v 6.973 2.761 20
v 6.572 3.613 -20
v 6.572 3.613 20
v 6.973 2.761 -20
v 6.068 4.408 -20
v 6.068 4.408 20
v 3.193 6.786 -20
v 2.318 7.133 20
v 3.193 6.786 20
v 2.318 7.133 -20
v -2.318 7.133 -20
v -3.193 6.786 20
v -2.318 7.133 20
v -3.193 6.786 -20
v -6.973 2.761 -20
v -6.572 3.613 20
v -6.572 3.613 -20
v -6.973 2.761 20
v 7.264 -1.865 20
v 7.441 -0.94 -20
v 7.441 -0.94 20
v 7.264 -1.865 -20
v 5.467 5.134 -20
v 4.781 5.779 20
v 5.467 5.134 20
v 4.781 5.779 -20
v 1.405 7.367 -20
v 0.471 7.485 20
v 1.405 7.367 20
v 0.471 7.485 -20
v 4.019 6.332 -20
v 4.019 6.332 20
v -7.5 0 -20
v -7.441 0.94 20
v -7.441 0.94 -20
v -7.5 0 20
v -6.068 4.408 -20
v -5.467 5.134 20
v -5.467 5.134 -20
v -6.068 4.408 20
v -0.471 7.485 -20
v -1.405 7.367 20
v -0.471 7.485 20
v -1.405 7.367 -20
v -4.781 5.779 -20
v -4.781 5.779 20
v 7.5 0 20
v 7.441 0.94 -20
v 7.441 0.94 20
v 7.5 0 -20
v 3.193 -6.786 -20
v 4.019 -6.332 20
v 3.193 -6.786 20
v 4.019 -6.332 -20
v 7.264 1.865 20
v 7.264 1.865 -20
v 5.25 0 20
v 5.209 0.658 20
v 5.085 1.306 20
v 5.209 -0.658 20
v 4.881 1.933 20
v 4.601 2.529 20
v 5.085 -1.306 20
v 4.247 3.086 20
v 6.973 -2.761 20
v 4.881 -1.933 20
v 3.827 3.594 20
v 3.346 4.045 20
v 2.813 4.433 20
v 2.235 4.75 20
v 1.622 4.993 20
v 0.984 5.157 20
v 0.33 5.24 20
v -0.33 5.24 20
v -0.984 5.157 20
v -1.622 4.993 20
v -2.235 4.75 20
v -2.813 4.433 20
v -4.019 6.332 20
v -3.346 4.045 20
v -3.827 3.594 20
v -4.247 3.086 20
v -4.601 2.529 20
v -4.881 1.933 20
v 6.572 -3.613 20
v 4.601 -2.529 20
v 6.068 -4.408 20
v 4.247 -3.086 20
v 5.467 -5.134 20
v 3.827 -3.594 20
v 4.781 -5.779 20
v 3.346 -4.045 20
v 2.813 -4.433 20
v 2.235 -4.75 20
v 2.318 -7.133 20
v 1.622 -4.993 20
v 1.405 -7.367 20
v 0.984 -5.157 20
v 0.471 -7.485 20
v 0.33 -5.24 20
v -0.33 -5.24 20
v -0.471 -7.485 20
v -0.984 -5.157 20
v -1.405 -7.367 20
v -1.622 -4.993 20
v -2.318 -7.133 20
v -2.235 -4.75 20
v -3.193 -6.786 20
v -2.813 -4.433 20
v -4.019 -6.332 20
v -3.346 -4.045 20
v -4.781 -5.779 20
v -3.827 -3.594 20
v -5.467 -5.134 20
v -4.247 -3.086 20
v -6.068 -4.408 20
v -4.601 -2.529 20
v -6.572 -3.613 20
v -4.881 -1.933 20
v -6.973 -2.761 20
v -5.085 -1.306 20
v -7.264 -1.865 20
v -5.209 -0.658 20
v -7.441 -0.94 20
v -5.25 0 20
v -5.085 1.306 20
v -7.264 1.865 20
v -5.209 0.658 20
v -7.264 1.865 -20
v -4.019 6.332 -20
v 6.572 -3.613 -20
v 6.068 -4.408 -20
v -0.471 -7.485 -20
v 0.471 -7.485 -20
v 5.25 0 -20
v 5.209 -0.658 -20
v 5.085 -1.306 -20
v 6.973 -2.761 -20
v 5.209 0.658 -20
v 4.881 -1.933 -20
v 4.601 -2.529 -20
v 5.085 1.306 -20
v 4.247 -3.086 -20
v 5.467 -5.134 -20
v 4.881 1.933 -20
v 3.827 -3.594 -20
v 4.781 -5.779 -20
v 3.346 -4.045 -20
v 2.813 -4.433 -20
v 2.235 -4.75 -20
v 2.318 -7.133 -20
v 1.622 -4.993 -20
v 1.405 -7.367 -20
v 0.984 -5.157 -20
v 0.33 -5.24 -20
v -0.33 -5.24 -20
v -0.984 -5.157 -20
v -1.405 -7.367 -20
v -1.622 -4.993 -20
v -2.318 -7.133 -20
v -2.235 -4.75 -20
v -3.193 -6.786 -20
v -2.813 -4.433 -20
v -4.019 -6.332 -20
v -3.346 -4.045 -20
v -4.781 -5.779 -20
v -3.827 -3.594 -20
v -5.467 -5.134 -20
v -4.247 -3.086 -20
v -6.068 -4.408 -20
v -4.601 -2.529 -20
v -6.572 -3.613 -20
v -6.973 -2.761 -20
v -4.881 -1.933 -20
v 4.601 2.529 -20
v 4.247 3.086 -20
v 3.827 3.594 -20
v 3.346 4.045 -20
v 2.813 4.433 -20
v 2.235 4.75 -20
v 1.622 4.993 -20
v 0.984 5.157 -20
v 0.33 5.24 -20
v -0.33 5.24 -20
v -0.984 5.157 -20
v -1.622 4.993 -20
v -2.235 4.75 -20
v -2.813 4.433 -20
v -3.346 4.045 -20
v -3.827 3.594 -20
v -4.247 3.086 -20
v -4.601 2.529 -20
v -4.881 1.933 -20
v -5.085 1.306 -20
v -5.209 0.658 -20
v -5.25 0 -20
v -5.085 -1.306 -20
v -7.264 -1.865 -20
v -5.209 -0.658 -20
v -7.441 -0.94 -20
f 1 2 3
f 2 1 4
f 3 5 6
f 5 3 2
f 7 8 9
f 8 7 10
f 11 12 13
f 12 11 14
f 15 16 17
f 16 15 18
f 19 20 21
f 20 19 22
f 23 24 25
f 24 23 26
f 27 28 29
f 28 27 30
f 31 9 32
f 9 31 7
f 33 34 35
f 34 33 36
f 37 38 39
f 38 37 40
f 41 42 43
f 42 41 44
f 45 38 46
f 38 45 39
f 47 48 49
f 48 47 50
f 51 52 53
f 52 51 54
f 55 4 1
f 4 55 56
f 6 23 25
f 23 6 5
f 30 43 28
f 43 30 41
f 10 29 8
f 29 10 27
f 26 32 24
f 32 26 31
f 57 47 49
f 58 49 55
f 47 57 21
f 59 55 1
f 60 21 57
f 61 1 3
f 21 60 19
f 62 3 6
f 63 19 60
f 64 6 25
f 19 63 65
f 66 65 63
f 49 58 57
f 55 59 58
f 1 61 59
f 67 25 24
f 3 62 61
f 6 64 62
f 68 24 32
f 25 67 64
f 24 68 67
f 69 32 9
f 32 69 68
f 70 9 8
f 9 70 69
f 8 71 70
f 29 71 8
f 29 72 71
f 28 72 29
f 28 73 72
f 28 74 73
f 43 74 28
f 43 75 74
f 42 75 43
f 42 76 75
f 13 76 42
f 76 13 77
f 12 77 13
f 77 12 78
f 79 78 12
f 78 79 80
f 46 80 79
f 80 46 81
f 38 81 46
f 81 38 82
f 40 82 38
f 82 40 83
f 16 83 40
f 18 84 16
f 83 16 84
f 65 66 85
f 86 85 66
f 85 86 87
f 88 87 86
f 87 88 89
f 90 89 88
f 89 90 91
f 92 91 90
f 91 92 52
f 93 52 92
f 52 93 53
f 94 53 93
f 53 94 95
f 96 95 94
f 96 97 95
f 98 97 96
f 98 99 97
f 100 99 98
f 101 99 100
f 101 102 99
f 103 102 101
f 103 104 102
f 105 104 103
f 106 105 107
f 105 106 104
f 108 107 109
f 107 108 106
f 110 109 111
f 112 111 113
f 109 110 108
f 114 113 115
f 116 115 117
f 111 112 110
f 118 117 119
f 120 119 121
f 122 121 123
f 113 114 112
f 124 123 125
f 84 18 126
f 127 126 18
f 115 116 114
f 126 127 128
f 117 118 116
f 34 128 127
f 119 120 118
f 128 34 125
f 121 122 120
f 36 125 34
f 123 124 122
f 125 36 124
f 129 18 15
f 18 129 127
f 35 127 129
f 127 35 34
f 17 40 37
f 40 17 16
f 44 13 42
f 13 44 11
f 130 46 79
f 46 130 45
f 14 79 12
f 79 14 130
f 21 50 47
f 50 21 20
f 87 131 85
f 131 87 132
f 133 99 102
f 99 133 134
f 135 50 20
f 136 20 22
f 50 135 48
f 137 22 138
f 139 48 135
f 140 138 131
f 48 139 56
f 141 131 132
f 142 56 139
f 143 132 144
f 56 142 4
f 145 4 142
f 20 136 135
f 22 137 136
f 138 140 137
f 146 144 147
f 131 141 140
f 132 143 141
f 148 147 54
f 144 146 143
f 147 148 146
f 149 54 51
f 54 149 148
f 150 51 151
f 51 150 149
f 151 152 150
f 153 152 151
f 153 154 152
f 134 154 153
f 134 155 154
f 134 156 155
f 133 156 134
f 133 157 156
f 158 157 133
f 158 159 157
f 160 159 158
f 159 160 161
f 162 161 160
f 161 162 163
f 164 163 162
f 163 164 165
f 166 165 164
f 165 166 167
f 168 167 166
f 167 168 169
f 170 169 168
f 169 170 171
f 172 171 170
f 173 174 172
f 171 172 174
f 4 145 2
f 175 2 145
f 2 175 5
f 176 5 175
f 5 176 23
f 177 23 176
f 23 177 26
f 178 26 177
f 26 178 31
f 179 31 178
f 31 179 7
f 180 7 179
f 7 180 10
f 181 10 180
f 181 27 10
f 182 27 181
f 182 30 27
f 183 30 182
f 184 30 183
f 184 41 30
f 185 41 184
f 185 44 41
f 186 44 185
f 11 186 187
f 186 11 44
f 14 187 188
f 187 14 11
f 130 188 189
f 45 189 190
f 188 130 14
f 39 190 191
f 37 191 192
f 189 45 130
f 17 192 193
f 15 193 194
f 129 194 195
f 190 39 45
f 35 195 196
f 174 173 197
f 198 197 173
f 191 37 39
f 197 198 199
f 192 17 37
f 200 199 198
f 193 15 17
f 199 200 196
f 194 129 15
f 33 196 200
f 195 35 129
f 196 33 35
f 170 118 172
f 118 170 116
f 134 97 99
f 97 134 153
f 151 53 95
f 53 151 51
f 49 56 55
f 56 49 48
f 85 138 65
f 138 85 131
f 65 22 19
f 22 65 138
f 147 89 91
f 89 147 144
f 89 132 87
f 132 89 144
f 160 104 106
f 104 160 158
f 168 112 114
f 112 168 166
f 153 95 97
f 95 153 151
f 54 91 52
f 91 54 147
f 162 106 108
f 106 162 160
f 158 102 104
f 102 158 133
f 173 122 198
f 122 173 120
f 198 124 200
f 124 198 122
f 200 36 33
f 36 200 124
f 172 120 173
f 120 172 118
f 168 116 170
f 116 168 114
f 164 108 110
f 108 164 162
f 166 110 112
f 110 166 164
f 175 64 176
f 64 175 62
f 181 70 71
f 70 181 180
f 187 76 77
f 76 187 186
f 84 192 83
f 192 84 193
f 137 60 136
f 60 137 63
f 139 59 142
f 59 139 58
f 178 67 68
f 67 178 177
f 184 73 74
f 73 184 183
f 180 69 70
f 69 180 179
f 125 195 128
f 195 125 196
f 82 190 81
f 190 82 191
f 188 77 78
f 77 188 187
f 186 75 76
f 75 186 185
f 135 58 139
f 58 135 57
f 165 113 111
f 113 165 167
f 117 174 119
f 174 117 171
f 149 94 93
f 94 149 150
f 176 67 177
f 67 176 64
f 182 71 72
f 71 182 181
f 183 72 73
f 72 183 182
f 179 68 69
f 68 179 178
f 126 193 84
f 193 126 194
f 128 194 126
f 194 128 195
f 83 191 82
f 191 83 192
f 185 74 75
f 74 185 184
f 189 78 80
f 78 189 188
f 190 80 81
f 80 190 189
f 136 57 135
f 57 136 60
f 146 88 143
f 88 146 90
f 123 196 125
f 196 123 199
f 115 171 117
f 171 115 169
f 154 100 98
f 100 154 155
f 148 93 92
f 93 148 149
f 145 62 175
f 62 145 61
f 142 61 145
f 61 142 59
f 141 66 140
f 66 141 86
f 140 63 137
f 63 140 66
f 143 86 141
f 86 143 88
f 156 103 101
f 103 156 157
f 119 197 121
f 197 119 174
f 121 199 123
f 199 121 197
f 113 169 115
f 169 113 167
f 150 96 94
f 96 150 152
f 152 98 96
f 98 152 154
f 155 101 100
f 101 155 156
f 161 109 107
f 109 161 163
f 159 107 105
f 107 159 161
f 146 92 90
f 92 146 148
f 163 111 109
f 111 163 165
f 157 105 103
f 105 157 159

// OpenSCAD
$fn = 50;


difference() {
	union() {
		translate(v = [0, 0, -20.0000000000]) {
			cylinder(h = 40, r = 7.5000000000);
		}
	}
	union() {
		translate(v = [0, 0, -100.0000000000]) {
			cylinder(h = 200, r = 5.2500000000);
		}
	}
}
